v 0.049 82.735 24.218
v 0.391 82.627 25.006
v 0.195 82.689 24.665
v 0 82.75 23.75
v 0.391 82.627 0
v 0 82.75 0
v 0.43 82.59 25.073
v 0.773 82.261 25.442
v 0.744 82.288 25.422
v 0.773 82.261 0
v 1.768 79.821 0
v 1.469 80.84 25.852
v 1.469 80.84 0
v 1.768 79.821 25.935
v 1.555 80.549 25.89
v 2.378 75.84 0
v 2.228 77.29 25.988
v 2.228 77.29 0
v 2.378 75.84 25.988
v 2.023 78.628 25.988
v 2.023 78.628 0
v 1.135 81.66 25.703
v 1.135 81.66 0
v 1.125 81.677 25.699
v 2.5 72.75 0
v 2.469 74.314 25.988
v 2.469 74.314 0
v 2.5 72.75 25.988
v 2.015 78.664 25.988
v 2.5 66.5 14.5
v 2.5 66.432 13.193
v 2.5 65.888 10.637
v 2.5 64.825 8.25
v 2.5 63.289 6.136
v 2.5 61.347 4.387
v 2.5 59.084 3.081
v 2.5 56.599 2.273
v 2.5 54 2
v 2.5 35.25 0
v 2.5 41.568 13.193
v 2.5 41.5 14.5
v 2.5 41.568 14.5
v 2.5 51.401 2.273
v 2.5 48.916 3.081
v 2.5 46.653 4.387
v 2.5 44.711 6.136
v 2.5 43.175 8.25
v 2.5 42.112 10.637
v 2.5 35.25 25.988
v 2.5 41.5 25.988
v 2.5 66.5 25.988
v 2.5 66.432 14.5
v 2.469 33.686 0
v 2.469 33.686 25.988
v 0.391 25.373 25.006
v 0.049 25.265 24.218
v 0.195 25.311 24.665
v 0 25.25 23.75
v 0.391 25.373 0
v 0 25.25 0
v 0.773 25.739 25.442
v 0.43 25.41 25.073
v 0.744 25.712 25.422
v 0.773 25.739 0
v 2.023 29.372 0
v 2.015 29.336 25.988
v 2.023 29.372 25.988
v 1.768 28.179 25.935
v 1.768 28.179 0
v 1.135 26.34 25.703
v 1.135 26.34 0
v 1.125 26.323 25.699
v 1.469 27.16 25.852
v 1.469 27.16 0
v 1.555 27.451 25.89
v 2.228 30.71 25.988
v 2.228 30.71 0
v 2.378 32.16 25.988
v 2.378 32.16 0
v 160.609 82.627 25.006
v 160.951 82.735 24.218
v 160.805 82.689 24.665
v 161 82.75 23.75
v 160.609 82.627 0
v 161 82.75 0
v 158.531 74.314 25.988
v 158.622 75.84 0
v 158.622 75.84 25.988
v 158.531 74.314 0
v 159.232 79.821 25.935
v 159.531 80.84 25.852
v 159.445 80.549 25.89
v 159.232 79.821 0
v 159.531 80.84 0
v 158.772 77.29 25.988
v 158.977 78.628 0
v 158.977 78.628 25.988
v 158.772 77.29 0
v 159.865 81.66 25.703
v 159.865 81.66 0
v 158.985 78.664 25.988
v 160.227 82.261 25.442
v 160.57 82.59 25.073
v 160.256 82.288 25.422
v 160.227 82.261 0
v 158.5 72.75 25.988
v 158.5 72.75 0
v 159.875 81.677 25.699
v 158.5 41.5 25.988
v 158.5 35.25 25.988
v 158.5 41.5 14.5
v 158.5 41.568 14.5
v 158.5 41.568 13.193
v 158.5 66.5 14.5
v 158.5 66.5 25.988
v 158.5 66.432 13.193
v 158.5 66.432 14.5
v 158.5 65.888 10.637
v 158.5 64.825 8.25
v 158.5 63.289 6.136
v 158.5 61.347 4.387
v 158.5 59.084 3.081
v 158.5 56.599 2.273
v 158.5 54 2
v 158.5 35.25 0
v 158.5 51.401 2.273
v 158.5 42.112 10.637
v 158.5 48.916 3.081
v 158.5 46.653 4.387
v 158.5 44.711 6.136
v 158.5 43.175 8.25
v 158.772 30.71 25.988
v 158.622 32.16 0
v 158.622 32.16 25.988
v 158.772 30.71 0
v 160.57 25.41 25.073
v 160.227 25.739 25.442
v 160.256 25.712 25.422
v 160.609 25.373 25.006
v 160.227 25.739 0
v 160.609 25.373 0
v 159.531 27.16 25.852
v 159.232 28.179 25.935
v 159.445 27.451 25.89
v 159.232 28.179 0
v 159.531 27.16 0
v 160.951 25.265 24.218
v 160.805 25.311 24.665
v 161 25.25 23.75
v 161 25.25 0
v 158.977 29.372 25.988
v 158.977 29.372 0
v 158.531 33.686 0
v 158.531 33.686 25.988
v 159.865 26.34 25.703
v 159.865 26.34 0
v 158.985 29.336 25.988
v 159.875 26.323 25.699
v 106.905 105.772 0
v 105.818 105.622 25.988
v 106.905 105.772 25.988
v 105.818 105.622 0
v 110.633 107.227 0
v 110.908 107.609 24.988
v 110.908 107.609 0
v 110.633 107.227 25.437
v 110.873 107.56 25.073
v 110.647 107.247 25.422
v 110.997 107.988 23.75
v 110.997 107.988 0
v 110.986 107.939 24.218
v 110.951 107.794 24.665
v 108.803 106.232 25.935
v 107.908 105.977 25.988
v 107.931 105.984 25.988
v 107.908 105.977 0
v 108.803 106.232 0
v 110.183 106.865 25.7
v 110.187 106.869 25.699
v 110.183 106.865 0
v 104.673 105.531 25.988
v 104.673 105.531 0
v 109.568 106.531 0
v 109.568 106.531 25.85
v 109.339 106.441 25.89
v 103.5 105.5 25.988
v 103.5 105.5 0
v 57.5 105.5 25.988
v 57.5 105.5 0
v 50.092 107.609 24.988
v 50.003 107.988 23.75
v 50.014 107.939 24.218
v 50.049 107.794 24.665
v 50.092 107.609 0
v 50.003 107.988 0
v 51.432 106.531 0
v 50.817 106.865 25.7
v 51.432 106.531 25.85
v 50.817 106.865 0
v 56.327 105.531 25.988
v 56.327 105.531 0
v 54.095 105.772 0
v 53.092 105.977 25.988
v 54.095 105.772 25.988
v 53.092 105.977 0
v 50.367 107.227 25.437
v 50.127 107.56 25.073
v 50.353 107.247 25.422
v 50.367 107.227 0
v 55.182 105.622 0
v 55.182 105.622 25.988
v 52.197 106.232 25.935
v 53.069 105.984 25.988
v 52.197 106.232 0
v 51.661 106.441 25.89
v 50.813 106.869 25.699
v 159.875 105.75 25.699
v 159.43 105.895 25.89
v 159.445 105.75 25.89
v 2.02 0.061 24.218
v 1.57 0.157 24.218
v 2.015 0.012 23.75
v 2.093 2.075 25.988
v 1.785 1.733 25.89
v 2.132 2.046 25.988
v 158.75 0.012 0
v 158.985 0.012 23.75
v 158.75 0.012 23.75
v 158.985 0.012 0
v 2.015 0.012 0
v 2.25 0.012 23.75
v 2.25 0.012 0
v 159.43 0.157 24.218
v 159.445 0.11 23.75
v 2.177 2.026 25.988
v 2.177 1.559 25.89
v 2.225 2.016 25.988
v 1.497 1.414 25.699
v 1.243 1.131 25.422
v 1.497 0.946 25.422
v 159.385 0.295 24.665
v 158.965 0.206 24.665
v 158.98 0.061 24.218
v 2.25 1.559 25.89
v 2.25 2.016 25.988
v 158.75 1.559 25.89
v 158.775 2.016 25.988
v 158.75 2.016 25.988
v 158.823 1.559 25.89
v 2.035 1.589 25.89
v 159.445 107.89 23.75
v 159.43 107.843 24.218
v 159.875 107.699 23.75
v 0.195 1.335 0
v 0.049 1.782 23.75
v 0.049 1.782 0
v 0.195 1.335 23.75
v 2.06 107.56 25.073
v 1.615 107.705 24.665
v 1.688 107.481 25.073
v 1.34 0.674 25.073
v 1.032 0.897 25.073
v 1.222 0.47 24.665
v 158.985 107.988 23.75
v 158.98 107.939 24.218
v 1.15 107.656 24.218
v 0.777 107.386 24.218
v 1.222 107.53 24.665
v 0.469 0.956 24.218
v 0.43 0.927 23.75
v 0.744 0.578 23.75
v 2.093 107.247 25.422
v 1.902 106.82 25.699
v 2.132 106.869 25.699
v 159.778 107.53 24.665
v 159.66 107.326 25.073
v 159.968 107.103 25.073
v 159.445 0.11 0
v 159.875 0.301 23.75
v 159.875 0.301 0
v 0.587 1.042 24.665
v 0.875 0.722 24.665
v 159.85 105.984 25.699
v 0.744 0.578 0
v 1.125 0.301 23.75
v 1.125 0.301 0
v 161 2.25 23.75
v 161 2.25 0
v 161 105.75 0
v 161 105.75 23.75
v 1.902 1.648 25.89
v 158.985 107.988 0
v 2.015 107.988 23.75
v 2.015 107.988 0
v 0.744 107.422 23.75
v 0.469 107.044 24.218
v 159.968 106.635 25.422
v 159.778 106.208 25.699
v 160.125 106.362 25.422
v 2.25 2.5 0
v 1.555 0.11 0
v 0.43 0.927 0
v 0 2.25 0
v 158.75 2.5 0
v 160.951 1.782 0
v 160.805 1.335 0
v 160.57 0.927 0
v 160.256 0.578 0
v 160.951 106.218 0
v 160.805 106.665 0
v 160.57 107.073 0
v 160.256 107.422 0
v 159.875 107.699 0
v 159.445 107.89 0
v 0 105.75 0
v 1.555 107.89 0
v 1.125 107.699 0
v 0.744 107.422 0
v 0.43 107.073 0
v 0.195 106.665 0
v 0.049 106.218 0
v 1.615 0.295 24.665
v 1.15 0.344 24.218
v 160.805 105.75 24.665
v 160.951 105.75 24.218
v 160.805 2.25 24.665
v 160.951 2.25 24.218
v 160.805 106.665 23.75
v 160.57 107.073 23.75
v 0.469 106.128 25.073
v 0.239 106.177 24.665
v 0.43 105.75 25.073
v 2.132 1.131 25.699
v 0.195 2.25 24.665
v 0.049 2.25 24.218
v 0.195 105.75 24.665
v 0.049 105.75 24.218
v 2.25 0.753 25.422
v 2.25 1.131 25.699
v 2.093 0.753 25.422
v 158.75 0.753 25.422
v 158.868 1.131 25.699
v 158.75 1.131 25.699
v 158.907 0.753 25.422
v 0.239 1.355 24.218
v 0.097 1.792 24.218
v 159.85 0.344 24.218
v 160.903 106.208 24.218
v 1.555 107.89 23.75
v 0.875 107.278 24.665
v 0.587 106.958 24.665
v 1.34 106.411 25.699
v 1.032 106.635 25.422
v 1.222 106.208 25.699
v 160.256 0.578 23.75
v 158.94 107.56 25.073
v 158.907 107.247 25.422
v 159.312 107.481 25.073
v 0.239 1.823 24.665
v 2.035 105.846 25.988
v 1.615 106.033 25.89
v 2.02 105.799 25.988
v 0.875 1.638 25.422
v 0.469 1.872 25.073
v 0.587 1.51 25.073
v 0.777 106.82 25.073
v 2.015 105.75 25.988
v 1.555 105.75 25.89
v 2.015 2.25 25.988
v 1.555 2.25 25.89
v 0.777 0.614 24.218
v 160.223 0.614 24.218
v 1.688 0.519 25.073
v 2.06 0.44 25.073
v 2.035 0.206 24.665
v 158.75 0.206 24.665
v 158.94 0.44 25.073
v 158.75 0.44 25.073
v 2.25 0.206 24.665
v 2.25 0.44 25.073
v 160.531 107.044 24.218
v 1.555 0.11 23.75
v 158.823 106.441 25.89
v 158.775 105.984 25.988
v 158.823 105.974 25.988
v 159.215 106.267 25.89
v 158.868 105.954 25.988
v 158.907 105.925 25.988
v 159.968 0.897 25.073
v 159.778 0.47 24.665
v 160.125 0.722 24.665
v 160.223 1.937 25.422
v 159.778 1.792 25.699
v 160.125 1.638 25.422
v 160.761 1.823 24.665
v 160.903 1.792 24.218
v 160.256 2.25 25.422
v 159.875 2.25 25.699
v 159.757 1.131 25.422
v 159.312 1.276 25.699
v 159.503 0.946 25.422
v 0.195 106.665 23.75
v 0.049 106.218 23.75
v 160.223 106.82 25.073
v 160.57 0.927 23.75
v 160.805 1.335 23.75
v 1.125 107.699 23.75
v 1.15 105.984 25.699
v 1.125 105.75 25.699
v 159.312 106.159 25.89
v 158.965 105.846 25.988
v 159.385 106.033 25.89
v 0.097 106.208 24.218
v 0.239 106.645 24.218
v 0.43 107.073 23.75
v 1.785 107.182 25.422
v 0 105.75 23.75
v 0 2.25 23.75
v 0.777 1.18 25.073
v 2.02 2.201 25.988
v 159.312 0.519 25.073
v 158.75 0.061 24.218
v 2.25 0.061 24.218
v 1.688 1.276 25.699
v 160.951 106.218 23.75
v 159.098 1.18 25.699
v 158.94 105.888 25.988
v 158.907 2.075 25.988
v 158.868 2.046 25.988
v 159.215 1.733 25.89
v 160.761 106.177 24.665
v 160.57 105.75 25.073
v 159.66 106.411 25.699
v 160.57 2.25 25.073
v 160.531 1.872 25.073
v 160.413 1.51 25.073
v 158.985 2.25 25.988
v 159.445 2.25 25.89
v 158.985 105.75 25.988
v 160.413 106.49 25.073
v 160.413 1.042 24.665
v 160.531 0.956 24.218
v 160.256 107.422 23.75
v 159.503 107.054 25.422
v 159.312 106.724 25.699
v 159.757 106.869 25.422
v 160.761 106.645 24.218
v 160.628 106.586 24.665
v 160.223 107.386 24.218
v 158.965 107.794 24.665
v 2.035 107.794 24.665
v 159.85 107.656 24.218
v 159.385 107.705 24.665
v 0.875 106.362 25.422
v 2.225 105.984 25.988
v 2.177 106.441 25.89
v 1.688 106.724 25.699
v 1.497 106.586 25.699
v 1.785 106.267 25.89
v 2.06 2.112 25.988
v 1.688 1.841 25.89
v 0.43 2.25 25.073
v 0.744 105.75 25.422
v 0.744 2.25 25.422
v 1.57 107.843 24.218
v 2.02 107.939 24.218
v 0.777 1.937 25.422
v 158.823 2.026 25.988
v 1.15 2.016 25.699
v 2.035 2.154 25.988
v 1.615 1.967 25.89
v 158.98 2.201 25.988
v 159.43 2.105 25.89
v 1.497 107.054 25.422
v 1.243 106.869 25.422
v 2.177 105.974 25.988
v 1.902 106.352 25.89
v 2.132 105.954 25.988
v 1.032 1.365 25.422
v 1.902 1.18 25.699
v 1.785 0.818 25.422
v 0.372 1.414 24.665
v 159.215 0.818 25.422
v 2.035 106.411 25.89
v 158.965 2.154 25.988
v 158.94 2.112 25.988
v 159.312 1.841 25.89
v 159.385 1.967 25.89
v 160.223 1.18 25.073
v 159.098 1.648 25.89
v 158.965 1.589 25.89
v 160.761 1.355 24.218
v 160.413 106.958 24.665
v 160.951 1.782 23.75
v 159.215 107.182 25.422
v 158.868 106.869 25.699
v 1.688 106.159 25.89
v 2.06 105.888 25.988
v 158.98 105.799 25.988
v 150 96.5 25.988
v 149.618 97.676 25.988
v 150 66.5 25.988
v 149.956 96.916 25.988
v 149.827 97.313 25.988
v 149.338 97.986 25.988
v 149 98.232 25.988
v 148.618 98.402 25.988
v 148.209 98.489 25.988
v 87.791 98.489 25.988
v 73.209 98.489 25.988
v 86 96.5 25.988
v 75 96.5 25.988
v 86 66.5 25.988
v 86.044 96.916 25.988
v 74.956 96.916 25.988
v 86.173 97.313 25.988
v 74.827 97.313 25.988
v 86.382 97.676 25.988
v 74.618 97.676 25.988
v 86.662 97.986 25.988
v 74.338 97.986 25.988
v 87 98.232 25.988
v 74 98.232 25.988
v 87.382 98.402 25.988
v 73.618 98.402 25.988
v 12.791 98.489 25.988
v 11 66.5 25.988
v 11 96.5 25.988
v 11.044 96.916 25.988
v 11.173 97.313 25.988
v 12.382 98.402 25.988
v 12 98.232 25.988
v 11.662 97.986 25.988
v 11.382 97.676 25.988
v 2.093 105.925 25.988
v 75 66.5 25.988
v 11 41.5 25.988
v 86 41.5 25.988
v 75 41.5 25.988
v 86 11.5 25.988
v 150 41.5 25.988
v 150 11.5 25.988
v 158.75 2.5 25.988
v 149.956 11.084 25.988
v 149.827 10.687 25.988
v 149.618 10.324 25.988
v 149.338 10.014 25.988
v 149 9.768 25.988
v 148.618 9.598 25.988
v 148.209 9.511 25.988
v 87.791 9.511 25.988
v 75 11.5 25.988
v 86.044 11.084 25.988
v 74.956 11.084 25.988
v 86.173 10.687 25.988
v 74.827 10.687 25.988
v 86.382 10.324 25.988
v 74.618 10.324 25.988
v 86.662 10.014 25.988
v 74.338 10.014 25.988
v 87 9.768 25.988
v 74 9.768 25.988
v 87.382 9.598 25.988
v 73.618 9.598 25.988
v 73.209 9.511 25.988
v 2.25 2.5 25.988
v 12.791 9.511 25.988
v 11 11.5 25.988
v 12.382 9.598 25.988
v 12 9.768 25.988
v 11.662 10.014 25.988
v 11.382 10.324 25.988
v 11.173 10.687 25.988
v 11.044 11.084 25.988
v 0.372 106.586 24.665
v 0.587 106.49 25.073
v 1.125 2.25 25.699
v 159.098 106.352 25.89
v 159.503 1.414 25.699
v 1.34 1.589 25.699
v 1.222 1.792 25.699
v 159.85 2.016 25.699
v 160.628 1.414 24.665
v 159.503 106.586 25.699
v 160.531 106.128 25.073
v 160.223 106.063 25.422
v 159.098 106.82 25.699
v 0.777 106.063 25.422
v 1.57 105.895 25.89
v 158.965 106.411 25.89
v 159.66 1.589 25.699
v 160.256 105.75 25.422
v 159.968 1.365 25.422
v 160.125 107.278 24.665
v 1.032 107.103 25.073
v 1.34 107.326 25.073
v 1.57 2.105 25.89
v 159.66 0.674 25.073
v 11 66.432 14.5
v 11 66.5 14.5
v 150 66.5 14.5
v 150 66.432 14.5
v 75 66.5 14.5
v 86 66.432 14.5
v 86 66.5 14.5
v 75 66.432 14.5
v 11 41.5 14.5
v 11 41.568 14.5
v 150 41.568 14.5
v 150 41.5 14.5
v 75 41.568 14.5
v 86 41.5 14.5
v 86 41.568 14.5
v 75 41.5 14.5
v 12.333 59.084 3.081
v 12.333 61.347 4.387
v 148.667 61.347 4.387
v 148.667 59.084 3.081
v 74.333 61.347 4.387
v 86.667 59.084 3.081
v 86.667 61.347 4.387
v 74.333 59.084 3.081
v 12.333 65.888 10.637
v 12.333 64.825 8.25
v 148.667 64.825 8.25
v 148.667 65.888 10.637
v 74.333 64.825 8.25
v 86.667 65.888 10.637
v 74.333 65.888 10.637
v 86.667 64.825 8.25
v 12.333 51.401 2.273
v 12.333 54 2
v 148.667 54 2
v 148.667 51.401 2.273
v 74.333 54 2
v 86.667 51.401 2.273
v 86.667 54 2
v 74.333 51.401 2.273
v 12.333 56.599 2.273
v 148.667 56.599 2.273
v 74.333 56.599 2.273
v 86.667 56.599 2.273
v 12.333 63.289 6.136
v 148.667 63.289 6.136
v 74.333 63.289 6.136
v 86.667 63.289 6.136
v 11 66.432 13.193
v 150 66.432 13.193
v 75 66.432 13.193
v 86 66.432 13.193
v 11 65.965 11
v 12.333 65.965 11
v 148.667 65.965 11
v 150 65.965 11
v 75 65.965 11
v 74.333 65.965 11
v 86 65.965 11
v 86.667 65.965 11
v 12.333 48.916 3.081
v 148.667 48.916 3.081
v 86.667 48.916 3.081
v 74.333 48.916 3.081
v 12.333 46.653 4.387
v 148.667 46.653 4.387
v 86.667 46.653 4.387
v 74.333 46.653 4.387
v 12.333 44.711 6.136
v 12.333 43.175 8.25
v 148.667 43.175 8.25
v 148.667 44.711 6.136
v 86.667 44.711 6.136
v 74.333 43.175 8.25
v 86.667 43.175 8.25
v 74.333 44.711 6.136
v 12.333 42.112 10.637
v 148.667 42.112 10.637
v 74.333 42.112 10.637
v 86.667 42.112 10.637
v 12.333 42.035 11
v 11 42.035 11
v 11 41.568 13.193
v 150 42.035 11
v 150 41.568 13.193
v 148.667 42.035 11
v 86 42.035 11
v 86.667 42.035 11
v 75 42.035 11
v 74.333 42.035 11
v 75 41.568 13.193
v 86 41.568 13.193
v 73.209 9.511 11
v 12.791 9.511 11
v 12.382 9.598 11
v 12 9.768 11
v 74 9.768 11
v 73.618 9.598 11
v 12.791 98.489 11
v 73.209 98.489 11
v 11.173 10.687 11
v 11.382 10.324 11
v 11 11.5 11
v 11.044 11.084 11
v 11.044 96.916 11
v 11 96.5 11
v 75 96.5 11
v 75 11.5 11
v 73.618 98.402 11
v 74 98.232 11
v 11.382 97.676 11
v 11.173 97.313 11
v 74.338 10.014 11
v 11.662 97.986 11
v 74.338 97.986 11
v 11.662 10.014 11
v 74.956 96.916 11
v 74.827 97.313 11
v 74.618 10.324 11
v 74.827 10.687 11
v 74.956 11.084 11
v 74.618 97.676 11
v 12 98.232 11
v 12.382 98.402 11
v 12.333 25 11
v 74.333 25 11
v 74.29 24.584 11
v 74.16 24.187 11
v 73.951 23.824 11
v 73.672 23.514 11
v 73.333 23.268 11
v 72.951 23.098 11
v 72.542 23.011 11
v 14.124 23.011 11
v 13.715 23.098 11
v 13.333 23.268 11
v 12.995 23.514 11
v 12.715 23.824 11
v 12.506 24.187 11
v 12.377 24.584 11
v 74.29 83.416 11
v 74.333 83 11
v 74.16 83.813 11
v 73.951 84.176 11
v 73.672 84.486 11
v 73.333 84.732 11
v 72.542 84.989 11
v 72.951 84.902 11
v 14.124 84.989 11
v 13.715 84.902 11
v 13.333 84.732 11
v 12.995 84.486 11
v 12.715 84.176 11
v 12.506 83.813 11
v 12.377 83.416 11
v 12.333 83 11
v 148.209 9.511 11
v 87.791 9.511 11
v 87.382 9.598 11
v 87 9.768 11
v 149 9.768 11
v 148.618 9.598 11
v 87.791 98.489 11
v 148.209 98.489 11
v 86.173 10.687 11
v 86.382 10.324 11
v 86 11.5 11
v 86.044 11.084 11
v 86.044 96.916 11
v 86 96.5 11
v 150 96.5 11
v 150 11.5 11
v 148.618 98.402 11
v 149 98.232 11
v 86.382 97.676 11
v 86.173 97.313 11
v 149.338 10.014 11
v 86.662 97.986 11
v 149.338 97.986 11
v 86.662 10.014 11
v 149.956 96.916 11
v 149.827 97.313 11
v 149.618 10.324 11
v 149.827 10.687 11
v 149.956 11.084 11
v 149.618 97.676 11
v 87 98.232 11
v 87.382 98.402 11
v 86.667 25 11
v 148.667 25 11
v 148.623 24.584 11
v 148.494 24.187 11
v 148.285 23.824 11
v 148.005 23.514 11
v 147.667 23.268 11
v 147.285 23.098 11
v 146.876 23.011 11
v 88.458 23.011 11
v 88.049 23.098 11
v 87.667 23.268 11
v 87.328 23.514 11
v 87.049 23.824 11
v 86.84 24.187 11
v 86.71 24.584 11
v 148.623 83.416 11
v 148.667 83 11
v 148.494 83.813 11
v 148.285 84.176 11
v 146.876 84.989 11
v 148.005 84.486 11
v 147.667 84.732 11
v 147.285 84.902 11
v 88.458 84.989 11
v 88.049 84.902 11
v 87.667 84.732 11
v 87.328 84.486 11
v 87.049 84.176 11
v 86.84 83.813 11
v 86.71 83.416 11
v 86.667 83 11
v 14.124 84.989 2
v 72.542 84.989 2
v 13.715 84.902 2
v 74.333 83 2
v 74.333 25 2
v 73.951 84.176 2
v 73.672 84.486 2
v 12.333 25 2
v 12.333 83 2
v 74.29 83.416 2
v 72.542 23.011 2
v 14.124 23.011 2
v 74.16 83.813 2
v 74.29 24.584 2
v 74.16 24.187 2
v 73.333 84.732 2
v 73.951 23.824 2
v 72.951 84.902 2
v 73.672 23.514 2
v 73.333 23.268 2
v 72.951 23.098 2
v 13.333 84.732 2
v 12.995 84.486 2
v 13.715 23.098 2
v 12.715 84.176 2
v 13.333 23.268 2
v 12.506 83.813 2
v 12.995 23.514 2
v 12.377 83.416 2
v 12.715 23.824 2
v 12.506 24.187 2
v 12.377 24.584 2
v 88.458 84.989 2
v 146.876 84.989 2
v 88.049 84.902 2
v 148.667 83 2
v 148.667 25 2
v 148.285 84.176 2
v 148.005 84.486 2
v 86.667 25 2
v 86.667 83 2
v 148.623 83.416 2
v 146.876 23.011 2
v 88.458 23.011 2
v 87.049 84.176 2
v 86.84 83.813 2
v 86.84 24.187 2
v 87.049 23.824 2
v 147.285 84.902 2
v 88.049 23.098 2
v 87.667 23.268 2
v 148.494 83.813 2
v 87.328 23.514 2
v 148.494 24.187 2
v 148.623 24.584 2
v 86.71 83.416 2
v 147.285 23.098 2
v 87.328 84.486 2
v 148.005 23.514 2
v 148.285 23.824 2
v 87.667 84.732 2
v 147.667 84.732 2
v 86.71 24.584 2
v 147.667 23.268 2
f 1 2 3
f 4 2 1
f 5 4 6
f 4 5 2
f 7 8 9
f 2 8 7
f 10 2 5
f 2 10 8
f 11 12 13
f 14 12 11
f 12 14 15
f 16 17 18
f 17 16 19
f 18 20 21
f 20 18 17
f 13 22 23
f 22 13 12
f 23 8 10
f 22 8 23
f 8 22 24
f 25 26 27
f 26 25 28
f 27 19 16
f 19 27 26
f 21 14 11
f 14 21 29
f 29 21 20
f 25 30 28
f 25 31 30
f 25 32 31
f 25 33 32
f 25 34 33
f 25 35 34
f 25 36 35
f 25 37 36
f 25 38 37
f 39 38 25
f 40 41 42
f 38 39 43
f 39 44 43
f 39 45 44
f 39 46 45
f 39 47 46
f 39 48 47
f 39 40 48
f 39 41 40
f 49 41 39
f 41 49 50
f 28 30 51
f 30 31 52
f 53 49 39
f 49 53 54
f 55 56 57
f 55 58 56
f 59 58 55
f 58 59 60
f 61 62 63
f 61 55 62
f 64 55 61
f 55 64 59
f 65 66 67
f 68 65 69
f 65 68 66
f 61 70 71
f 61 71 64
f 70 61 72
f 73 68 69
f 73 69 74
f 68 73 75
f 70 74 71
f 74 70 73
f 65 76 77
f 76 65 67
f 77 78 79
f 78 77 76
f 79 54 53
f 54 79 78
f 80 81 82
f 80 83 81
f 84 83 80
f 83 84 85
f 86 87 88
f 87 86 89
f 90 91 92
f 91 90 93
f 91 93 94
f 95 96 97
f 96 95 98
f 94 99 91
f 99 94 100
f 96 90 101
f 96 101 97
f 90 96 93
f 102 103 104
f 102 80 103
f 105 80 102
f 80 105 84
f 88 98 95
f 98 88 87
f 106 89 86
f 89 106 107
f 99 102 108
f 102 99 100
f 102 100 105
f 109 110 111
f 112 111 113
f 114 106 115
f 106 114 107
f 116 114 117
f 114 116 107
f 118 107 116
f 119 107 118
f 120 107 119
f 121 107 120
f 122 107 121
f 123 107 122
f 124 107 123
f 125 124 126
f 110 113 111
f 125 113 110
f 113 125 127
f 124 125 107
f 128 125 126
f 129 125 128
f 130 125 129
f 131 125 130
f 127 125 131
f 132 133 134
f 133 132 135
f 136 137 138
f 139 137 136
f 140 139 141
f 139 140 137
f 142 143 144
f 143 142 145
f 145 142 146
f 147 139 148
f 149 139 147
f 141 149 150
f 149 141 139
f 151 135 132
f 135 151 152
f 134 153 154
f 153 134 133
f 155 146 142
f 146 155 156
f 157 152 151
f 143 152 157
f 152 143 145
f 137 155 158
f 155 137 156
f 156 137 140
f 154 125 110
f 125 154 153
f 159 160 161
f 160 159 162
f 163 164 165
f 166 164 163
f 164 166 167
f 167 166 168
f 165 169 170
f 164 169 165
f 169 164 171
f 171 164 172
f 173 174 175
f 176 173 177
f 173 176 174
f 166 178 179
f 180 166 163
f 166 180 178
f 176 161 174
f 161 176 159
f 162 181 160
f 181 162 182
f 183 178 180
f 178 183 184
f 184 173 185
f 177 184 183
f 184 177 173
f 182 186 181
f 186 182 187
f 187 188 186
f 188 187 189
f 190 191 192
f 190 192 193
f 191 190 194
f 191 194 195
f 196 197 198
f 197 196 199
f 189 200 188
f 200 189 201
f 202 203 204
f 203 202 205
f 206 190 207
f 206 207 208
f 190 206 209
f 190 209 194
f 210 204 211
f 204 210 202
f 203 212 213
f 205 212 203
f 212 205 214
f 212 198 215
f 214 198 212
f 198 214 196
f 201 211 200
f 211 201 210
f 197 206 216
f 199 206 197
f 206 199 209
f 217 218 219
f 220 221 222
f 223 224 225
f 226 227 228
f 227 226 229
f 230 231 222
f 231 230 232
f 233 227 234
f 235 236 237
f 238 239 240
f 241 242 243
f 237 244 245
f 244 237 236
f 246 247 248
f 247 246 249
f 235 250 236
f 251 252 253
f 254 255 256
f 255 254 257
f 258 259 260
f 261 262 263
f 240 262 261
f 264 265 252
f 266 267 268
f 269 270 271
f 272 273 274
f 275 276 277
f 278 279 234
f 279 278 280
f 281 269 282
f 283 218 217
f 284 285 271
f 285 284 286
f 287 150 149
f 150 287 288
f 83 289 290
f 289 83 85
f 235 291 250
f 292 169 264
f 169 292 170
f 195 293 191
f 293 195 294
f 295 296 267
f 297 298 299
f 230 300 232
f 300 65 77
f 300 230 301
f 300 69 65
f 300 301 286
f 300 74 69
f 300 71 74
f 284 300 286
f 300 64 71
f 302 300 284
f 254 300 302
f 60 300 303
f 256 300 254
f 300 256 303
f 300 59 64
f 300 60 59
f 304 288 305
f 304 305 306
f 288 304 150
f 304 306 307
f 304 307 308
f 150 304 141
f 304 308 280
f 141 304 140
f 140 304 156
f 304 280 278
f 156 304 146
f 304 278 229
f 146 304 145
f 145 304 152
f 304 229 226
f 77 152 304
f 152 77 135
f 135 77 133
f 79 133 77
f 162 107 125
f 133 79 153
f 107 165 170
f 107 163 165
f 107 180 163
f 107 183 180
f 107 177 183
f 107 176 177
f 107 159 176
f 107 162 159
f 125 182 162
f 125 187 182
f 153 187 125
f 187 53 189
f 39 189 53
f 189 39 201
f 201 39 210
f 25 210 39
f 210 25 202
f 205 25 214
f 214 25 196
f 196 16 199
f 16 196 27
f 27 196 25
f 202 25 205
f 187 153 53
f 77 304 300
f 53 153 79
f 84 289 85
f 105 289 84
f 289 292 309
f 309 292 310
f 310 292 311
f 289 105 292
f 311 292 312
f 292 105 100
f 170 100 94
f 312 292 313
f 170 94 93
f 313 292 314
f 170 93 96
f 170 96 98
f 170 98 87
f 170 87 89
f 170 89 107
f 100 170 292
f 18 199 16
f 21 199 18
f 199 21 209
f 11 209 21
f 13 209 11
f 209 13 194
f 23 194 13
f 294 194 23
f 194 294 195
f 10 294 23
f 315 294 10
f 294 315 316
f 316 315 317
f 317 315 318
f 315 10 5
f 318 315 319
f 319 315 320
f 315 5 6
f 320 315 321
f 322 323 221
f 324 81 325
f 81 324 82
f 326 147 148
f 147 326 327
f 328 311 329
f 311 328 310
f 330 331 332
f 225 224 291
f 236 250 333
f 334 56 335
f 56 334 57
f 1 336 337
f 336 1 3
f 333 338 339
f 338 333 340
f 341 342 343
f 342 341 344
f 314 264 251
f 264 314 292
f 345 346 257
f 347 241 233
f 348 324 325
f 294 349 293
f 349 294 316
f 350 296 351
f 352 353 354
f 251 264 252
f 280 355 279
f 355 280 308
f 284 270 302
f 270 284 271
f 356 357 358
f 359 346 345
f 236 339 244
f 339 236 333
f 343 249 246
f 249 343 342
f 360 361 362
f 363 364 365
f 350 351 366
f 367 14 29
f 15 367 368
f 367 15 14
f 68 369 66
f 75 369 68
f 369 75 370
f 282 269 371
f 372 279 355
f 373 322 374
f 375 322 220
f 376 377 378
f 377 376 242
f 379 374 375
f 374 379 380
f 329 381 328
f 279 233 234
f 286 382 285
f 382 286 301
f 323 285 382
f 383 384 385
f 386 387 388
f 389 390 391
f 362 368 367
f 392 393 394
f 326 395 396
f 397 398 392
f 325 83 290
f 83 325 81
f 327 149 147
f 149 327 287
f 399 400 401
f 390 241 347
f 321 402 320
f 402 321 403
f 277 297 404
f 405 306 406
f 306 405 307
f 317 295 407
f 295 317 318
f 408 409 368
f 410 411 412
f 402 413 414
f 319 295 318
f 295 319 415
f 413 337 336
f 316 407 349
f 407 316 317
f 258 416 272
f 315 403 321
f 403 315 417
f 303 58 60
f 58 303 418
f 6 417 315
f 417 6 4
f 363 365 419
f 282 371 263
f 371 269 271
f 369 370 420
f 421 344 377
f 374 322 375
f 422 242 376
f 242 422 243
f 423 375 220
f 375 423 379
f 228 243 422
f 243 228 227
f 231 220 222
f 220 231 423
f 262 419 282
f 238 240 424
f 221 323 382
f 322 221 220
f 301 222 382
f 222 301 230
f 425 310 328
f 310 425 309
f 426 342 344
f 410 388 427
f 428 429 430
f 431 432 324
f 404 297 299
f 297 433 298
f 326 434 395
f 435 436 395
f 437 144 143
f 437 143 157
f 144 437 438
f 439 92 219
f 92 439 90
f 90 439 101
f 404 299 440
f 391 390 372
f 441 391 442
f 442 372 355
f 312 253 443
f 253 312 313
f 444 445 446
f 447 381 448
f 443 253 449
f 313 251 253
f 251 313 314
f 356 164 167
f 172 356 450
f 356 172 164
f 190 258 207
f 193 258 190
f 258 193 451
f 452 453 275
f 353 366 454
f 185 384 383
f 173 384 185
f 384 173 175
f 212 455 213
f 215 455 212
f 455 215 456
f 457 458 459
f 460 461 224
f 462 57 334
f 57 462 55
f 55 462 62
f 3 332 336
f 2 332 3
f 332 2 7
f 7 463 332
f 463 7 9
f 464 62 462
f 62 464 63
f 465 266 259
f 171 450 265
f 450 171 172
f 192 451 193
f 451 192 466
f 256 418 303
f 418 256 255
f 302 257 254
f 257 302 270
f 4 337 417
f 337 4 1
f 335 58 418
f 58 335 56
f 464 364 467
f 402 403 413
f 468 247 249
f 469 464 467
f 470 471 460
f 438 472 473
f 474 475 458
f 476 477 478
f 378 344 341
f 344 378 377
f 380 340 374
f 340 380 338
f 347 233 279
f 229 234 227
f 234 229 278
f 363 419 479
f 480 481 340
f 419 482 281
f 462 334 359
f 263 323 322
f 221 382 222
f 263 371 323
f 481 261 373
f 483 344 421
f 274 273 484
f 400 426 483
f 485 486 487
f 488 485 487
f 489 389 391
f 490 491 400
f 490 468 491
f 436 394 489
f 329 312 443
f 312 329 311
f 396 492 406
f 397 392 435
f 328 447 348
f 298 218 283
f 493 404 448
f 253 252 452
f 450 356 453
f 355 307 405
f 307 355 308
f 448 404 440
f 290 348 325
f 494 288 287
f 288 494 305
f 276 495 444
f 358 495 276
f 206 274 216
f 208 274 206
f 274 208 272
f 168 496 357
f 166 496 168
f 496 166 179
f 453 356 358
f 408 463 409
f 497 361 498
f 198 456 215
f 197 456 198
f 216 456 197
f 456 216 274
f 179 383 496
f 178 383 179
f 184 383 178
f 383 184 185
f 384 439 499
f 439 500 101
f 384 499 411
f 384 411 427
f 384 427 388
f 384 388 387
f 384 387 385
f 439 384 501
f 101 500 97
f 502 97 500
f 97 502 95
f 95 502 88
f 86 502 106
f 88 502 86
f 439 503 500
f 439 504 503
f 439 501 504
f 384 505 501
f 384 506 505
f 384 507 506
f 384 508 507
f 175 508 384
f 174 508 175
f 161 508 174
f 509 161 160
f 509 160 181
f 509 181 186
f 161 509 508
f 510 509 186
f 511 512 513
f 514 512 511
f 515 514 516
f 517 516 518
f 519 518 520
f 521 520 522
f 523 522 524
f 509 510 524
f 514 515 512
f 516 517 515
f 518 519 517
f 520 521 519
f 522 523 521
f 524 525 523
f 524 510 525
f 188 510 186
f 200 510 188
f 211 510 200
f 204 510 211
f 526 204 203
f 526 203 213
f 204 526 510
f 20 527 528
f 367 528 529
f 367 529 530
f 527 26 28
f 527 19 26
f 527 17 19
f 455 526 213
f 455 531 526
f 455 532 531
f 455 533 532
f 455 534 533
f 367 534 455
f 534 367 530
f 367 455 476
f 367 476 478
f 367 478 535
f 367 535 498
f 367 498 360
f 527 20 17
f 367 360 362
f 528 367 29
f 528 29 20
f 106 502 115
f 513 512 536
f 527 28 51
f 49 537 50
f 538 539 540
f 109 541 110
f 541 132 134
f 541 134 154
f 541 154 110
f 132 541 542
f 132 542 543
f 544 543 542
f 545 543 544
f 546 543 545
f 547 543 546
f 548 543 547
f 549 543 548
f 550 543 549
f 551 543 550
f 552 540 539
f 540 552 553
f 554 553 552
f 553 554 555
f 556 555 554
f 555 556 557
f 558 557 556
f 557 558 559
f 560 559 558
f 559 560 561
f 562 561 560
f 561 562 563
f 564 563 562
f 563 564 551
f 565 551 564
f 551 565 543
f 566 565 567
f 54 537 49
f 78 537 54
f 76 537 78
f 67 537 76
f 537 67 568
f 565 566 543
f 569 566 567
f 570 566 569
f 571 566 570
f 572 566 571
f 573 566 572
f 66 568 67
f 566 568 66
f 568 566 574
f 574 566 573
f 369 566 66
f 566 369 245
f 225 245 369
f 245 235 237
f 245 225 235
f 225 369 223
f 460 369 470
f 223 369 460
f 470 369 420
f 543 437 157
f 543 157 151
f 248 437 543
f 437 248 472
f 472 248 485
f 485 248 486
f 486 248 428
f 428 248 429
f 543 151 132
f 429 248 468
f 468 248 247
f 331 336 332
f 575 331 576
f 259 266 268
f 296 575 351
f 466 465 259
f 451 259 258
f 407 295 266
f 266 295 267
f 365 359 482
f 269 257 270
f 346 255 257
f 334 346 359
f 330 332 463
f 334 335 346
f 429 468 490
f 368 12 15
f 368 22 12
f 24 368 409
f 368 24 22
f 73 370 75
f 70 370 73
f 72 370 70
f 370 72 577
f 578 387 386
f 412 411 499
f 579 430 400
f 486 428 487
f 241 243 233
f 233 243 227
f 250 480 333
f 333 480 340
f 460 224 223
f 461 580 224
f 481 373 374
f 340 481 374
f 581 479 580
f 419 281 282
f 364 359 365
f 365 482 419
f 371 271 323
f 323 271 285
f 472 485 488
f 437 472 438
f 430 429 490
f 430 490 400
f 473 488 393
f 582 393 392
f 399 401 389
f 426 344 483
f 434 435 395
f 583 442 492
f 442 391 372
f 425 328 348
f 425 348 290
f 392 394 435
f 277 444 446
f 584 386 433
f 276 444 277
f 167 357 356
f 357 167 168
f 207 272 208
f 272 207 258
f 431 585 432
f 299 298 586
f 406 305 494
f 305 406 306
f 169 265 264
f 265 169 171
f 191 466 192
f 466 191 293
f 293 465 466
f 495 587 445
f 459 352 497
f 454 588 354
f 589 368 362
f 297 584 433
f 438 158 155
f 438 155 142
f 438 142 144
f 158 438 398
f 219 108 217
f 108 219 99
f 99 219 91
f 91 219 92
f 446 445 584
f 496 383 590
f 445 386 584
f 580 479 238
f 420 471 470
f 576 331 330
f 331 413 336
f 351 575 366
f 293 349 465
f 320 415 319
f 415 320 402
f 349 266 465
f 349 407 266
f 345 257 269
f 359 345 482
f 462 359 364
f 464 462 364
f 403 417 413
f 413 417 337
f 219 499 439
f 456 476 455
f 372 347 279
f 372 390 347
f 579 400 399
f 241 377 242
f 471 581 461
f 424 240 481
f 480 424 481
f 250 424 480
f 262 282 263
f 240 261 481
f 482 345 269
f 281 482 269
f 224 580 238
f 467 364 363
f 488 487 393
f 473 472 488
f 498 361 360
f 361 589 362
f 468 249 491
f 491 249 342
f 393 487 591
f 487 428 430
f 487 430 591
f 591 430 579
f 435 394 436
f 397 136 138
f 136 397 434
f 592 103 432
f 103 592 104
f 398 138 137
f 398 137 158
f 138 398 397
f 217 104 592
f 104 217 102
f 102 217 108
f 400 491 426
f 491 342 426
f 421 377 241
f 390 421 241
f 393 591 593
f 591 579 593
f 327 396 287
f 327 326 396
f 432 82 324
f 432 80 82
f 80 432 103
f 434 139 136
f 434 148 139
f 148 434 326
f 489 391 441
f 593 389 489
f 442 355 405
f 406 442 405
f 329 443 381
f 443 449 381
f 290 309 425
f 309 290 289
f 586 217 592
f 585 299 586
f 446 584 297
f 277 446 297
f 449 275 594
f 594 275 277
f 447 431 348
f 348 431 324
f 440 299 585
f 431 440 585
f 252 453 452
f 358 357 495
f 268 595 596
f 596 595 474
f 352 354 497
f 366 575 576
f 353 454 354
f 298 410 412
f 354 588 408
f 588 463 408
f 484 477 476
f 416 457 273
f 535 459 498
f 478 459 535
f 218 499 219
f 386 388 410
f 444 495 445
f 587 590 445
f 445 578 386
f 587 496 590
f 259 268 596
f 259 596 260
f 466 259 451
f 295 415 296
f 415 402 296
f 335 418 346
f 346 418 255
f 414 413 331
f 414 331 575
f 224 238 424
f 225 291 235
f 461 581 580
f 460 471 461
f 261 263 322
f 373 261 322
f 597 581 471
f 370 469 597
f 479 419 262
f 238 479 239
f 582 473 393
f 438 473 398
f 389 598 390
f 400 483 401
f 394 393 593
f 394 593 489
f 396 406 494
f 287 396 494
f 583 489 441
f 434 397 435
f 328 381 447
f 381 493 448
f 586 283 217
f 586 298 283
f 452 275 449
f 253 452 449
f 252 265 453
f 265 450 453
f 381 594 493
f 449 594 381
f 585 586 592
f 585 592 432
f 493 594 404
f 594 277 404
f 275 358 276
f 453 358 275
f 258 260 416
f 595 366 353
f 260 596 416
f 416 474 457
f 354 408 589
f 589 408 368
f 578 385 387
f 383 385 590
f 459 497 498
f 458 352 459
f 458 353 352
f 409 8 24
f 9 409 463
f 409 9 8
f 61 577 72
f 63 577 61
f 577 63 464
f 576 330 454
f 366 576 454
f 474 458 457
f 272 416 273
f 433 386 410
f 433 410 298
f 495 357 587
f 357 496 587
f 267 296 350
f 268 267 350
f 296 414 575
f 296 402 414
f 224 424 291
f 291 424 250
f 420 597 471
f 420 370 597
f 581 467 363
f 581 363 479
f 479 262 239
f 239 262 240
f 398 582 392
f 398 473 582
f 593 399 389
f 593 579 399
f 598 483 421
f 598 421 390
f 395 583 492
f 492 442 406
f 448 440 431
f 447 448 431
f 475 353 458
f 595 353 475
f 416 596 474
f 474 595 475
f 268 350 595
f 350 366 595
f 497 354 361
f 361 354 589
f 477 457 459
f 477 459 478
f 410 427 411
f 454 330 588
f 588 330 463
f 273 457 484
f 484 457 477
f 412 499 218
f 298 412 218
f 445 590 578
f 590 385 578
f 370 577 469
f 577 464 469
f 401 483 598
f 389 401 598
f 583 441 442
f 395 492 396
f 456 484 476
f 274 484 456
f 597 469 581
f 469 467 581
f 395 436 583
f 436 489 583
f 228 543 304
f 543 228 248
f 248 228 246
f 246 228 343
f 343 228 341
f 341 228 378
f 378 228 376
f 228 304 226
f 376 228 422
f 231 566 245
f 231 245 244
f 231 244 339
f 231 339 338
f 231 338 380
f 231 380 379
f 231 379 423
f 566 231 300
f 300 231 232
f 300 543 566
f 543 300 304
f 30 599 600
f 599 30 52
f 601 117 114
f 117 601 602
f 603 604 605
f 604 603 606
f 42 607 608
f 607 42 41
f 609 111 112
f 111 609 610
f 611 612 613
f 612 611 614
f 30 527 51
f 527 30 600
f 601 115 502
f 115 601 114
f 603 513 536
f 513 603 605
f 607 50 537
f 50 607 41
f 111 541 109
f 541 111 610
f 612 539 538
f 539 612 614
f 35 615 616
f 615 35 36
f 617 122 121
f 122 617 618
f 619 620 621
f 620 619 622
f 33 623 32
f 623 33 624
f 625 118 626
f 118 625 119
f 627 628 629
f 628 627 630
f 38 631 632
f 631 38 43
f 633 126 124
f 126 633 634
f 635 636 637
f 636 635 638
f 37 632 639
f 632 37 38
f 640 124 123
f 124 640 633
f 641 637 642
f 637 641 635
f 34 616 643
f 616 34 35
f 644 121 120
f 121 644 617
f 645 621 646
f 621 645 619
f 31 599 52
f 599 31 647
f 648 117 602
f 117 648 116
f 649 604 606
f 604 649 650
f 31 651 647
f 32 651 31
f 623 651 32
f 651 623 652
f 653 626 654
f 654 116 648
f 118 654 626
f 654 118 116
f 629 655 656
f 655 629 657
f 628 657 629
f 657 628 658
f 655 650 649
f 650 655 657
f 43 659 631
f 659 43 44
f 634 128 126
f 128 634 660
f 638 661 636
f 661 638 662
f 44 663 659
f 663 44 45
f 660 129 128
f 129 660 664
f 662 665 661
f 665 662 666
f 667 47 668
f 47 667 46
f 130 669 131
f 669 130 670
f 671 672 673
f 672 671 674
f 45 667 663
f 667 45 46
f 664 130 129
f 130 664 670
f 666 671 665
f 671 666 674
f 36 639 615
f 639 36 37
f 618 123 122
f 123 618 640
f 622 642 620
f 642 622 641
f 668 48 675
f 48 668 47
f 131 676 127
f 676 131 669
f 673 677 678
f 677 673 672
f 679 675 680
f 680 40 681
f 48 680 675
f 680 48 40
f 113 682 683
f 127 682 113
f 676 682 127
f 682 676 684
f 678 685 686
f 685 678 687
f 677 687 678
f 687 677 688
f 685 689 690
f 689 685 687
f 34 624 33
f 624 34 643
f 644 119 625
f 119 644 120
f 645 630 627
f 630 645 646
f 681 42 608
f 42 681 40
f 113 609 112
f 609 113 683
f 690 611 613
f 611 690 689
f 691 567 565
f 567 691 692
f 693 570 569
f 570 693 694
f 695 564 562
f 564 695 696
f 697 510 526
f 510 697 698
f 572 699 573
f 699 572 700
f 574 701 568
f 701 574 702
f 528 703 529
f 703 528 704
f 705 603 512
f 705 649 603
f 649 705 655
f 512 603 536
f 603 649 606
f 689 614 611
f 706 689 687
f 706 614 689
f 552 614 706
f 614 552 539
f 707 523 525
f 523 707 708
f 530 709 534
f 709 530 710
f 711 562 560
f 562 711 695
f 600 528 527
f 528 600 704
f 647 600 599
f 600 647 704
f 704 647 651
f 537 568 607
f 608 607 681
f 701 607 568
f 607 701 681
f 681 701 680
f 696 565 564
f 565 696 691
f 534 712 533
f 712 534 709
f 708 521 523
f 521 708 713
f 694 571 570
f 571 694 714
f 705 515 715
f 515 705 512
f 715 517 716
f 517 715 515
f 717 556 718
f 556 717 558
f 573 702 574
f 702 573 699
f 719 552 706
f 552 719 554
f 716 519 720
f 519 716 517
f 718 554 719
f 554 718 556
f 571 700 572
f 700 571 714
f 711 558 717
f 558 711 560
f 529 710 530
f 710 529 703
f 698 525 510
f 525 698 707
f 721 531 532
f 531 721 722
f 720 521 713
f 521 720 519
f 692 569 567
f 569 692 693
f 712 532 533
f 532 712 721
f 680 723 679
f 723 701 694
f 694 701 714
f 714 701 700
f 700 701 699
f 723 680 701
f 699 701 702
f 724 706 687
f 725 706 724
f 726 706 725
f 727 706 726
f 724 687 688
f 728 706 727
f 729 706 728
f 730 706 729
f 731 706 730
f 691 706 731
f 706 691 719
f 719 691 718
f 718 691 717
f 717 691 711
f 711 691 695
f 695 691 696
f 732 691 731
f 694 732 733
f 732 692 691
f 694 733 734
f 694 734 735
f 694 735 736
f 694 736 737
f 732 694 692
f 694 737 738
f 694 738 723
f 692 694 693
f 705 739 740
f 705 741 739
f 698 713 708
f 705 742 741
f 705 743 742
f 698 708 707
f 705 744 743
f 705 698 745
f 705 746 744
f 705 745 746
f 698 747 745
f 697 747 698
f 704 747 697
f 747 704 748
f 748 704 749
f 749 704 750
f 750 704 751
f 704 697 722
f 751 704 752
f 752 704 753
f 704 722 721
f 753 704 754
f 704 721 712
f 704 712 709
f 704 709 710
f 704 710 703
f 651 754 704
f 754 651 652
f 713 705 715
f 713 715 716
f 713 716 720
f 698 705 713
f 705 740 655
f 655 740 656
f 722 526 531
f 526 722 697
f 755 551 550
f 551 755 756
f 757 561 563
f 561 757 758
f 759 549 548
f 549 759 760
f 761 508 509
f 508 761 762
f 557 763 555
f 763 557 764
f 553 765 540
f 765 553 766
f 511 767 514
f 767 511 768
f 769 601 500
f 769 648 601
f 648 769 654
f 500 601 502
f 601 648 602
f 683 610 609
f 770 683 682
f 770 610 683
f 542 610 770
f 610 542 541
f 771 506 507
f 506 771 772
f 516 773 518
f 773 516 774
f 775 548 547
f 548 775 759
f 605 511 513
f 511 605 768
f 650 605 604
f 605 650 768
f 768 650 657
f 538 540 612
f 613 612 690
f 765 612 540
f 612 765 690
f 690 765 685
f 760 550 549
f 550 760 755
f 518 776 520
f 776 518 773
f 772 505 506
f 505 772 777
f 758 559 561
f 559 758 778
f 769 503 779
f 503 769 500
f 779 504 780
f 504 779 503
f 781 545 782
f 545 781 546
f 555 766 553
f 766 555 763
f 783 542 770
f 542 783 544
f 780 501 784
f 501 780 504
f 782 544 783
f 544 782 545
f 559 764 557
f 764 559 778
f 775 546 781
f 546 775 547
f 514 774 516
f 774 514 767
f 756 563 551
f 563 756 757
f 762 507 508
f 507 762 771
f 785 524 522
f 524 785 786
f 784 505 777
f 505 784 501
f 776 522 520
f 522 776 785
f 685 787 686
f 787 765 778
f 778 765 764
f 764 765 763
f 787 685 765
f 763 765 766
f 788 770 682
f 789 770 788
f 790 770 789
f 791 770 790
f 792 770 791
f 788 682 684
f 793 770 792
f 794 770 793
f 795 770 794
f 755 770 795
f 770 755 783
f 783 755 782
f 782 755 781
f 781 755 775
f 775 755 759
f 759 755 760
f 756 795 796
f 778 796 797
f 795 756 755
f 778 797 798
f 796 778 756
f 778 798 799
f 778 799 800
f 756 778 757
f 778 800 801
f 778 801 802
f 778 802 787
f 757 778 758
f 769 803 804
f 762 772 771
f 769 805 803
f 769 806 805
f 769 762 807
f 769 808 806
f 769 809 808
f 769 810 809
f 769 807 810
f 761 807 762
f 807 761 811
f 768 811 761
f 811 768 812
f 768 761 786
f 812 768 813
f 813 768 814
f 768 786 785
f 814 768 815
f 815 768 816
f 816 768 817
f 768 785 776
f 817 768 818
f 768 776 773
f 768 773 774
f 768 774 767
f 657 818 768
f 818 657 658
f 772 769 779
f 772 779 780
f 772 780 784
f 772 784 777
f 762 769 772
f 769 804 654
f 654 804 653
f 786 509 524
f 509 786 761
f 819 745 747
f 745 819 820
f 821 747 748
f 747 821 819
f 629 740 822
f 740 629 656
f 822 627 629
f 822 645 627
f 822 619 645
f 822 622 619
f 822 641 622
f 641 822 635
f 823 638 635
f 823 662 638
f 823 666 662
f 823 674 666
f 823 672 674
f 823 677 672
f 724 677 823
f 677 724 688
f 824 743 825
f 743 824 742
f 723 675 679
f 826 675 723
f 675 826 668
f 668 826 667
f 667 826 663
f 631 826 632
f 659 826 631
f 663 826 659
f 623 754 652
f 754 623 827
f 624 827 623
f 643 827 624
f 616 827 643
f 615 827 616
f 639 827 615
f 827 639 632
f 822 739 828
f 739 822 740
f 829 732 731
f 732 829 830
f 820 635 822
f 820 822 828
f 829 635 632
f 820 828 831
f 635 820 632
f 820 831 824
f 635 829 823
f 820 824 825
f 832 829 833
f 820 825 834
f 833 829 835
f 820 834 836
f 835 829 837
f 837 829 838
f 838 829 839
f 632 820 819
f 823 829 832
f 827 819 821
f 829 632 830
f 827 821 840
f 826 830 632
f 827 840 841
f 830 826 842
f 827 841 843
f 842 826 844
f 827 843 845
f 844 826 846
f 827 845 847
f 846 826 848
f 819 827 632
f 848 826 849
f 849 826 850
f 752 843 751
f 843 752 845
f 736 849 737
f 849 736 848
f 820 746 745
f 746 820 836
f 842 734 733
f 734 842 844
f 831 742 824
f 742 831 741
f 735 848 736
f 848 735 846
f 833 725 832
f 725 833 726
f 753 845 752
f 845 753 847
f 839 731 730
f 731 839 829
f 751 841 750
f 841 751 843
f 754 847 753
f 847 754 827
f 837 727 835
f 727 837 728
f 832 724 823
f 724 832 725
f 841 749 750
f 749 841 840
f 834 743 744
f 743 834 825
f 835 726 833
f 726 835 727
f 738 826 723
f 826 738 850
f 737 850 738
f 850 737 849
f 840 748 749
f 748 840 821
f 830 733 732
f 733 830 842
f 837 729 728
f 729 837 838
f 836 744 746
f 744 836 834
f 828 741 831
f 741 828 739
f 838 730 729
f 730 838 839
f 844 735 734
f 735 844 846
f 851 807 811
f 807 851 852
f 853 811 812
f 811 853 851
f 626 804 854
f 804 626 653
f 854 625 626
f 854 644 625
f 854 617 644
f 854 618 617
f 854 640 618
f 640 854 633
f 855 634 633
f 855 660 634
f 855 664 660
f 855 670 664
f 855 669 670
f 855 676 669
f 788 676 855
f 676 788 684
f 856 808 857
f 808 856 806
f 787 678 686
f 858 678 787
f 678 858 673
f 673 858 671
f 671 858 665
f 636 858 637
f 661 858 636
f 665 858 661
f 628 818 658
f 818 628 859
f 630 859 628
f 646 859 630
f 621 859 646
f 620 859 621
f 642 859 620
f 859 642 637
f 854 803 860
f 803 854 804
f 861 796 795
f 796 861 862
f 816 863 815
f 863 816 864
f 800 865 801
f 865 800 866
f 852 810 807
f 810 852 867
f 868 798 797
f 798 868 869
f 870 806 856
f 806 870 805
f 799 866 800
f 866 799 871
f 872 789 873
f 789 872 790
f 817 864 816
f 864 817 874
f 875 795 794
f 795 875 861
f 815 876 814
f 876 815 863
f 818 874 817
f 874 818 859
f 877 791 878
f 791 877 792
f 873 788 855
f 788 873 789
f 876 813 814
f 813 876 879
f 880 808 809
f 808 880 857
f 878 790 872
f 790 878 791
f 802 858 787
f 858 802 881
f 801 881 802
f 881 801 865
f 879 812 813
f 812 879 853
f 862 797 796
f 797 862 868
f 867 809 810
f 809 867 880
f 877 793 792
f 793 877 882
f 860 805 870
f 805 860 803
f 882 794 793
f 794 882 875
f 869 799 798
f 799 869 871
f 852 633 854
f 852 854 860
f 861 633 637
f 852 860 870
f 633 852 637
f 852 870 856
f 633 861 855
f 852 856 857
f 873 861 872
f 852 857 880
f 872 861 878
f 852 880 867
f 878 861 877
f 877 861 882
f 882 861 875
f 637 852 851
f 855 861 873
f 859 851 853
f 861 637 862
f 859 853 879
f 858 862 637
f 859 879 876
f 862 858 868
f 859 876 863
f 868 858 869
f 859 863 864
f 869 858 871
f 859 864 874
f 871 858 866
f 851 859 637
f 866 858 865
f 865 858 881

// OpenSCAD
// file: ../roundedcube.scad
// Aquired from https://danielupshaw.com/openscad-rounded-corners/
// License unknown

// Higher definition curves
$fs = 0.01;

module roundedcube(size = [1, 1, 1], center = false, radius = 0.5, apply_to = "all") {
	// If single value, convert to [x, y, z] vector
	size = (size[0] == undef) ? [size, size, size] : size;

	translate_min = radius;
	translate_xmax = size[0] - radius;
	translate_ymax = size[1] - radius;
	translate_zmax = size[2] - radius;

	diameter = radius * 2;

	module build_point(type = "sphere", rotate = [0, 0, 0]) {
		if (type == "sphere") {
			sphere(r = radius);
		} else if (type == "cylinder") {
			rotate(a = rotate)
			cylinder(h = diameter, r = radius, center = true);
		}
	}

	obj_translate = (center == false) ?
		[0, 0, 0] : [
			-(size[0] / 2),
			-(size[1] / 2),
			-(size[2] / 2)
		];

	translate(v = obj_translate) {
		hull() {
			for (translate_x = [translate_min, translate_xmax]) {
				x_at = (translate_x == translate_min) ? "min" : "max";
				for (translate_y = [translate_min, translate_ymax]) {
					y_at = (translate_y == translate_min) ? "min" : "max";
					for (translate_z = [translate_min, translate_zmax]) {
						z_at = (translate_z == translate_min) ? "min" : "max";

						translate(v = [translate_x, translate_y, translate_z])
						if (
							(apply_to == "all") ||
							(apply_to == "xmin" && x_at == "min") || (apply_to == "xmax" && x_at == "max") ||
							(apply_to == "ymin" && y_at == "min") || (apply_to == "ymax" && y_at == "max") ||
							(apply_to == "zmin" && z_at == "min") || (apply_to == "zmax" && z_at == "max")
						) {
							build_point("sphere");
						} else {
							rotate =
								(apply_to == "xmin" || apply_to == "xmax" || apply_to == "x") ? [0, 90, 0] : (
								(apply_to == "ymin" || apply_to == "ymax" || apply_to == "y") ? [90, 90, 0] :
								[0, 0, 0]
							);
							build_point("cylinder", rotate);
						}
					}
				}
			}
		}
	}
}
// file: ../utilities.scad
use <./photo_base.scad>
use <./roundedcube.scad>

render_helper = 1; // Helps the quick render not have a "skin" on top of the hole
max_height = box_height() - 1;
THUMB_WIDTH = 25;

function thumb_slot_y() = (box_depth() - THUMB_WIDTH) / 2;
function thumb_slot_y2() = (box_depth() - THUMB_WIDTH * 2) / 3;
function thumb_width() = THUMB_WIDTH;

module card_slot(
    width = 63.5,
    depth = 88.5,
    height = 17,
    radius = 2
) {
    roundedcube(
        [width, depth, height + render_helper],
        radius = radius,
        apply_to = "z"
    );
}

module thumb_slot(
    width = box_width(),
    depth = THUMB_WIDTH,
    height = box_height(),
    slot_depth = undef
) {
    
    translate_y = slot_depth == undef ? 0 : slot_depth / 2 - THUMB_WIDTH / 2;
    
    translate([0, translate_y, 0])
    union() {
        translate([0, 0, depth / 2])
        cube([width, depth, height - depth / 2 + render_helper]);
        
        translate([0, depth / 2, depth / 2])
        rotate([0, 90, 0])
        cylinder(h = width, d = depth);
    }
}

module booklet_slot(width, depth, height) {
    cube([width, depth, height + render_helper]);
}

module two_card_holder(
    width = 63.5,
    depth = 88.5,
    height = 17,
    radius = 2,
    booklet = undef
) {
    height = height > box_height() ? max_height : height;
    total_height = booklet == undef ? height : height + booklet[2];
     
    
    difference() {
        photo_base();
        
        offset_z = booklet == undef ? box_height() - height : box_height() - total_height;
        translate([0, center_depth_offset(depth), offset_z])
        union() {
            translate([triple_width_offset(width), 0, 0])
            card_slot(width, depth, total_height, radius);
            
            translate([triple_width_offset(width) * 2 + width, 0, 0])
            card_slot(width, depth, total_height, radius);
        }
        
        translate([0, center_depth_offset(THUMB_WIDTH), box_height() - total_height])
        thumb_slot(height = total_height);
        
        if (booklet != undef) {
            translate([center_width_offset(booklet[0]), center_depth_offset(booklet[1]), box_height() - booklet[2]])
            booklet_slot(booklet[0], booklet[1], booklet[2]);
        }
    }
}
// file: ../photo_base.scad
use <./roundedcube.scad>

BOX_WIDTH = 161;
BOX_DEPTH = 108;
BOX_HEIGHT = 26;

BOX_RADIUS = 2.25;

LABEL_WIDTH = BOX_WIDTH - BOX_RADIUS * 2;
LABEL_DEPTH = 2.5;

SIDE_CURVE_DEPTH = 20;
SIDE_CURVE_DIAMETER = 5;
SIDE_INNER_DEPTH = 37.5;

// total = 48.5
TOP_CURVE_WIDTH = 15;
TOP_CURVE_DIAMETER = 5;
TOP_INNER_WIDTH = 46;

render_helper = 1; // Helps the quick render not have a "skin" on top of the hole

function box_width() = BOX_WIDTH;
function box_depth() = BOX_DEPTH;
function box_height() = BOX_HEIGHT;
function side_curve() = SIDE_CURVE_DIAMETER / 2;
function top_curve() = TOP_CURVE_DIAMETER / 2;
function label_depth() = LABEL_DEPTH;
function center_width_offset(width) = (BOX_WIDTH - width) / 2;
function triple_width_offset(width) = (BOX_WIDTH - width * 2) / 3;
function triple_width_offset_single(width) = (BOX_WIDTH - width) / 3;
function quad_width_offset_single(width) = (BOX_WIDTH - width) / 4;
function center_depth_offset(depth) = (BOX_DEPTH - depth) / 2;
function triple_depth_offset(depth) = (BOX_DEPTH - depth) / 3;
function triple_depth_offset_single(width) = (BOX_DEPTH - width) / 3;

module base_block() {
    roundedcube(
        [BOX_WIDTH, BOX_DEPTH, BOX_HEIGHT],
        radius = BOX_RADIUS,
        apply_to = "zmax"
    );
}

module label_cutout() {
    offset_x = (BOX_WIDTH - LABEL_WIDTH) / 2;
    translate([offset_x, -render_helper, -render_helper])
    cube([LABEL_WIDTH, LABEL_DEPTH + render_helper, BOX_HEIGHT + render_helper * 2]);
}

module side_cutout() {
    height = BOX_HEIGHT + render_helper * 2;
    half_side = SIDE_INNER_DEPTH / 2;
    
    translate([0, half_side, -render_helper])
    linear_extrude(height)
    resize([SIDE_CURVE_DIAMETER, SIDE_CURVE_DEPTH])
    circle(SIDE_CURVE_DIAMETER, $fn = 40);
    
    translate([-SIDE_CURVE_DIAMETER / 2, -half_side, -render_helper])
    cube([SIDE_CURVE_DIAMETER, SIDE_INNER_DEPTH, height]);
    
    translate([0, -half_side, -render_helper])
    linear_extrude(height)
    resize([SIDE_CURVE_DIAMETER, SIDE_CURVE_DEPTH])
    circle(SIDE_CURVE_DIAMETER, $fn = 40);
}

module side_cutouts() {
    translate([0, BOX_DEPTH / 2, 0])
    side_cutout();
    
    translate([BOX_WIDTH, BOX_DEPTH / 2, 0])
    side_cutout();
}

module top_cutout() {
    height = BOX_HEIGHT + render_helper * 2;
    half_side = TOP_INNER_WIDTH / 2;
    
    translate([BOX_WIDTH / 2, BOX_DEPTH, 0])
    union() {
        translate([half_side, 0, -render_helper])
        linear_extrude(height)
        rotate([0, 0, 90])
        resize([TOP_CURVE_DIAMETER, TOP_CURVE_WIDTH])
        circle(TOP_CURVE_DIAMETER, $fn = 40);
        
        translate([-half_side, -TOP_CURVE_DIAMETER / 2, -render_helper])
        cube([TOP_INNER_WIDTH, TOP_CURVE_DIAMETER, height]);
        
        translate([-half_side, 0, -render_helper])
        linear_extrude(height)
        rotate([0, 0, 90])
        resize([TOP_CURVE_DIAMETER, TOP_CURVE_WIDTH])
        circle(TOP_CURVE_DIAMETER, $fn = 40);
    }
}

module photo_base() {
    difference() {
        base_block();
        label_cutout();
        side_cutouts();
        top_cutout();
    }
}

photo_base();
// main file
use <../photo_base.scad>
use <../utilities.scad>

CARD_WIDTH = 64;
CARD_DEPTH = 89;
CARD_HEIGHT = 15;

TILE_WIDTH = 62;
TILE_DEPTH = 62;
TILE_HEIGHT = 9;

render_helper = 1; // Helps the quick render not have a "skin" on top of the hole

tile_spacing = triple_width_offset(TILE_WIDTH);
card_spacing = triple_width_offset(CARD_WIDTH);

module card_cutout() {
    offset_y = center_depth_offset(CARD_DEPTH);
    offset_z = box_height() - CARD_HEIGHT;
    
    translate([card_spacing, offset_y, offset_z])
    card_slot(CARD_WIDTH, CARD_DEPTH, CARD_HEIGHT);
    
    translate([card_spacing * 2 + CARD_WIDTH, offset_y, offset_z])
    card_slot(CARD_WIDTH, CARD_DEPTH, CARD_HEIGHT);
}

module tile_cutout() {
    offset_y = center_depth_offset(TILE_DEPTH);
    offset_z = box_height() - TILE_HEIGHT - CARD_HEIGHT;
    
    translate([tile_spacing, offset_y, offset_z])
    card_slot(TILE_WIDTH, TILE_DEPTH, TILE_HEIGHT + CARD_HEIGHT + render_helper);
    
    translate([tile_spacing * 2 + TILE_WIDTH, offset_y, offset_z])
    card_slot(TILE_WIDTH, TILE_DEPTH, TILE_HEIGHT + CARD_HEIGHT + render_helper);
}

module thumb_cutout() {
    translate([0, thumb_slot_y(), box_height() - CARD_HEIGHT - TILE_HEIGHT])
    thumb_slot();
}

difference() {
    photo_base();
    
    thumb_cutout();
    card_cutout();
    tile_cutout();
}
